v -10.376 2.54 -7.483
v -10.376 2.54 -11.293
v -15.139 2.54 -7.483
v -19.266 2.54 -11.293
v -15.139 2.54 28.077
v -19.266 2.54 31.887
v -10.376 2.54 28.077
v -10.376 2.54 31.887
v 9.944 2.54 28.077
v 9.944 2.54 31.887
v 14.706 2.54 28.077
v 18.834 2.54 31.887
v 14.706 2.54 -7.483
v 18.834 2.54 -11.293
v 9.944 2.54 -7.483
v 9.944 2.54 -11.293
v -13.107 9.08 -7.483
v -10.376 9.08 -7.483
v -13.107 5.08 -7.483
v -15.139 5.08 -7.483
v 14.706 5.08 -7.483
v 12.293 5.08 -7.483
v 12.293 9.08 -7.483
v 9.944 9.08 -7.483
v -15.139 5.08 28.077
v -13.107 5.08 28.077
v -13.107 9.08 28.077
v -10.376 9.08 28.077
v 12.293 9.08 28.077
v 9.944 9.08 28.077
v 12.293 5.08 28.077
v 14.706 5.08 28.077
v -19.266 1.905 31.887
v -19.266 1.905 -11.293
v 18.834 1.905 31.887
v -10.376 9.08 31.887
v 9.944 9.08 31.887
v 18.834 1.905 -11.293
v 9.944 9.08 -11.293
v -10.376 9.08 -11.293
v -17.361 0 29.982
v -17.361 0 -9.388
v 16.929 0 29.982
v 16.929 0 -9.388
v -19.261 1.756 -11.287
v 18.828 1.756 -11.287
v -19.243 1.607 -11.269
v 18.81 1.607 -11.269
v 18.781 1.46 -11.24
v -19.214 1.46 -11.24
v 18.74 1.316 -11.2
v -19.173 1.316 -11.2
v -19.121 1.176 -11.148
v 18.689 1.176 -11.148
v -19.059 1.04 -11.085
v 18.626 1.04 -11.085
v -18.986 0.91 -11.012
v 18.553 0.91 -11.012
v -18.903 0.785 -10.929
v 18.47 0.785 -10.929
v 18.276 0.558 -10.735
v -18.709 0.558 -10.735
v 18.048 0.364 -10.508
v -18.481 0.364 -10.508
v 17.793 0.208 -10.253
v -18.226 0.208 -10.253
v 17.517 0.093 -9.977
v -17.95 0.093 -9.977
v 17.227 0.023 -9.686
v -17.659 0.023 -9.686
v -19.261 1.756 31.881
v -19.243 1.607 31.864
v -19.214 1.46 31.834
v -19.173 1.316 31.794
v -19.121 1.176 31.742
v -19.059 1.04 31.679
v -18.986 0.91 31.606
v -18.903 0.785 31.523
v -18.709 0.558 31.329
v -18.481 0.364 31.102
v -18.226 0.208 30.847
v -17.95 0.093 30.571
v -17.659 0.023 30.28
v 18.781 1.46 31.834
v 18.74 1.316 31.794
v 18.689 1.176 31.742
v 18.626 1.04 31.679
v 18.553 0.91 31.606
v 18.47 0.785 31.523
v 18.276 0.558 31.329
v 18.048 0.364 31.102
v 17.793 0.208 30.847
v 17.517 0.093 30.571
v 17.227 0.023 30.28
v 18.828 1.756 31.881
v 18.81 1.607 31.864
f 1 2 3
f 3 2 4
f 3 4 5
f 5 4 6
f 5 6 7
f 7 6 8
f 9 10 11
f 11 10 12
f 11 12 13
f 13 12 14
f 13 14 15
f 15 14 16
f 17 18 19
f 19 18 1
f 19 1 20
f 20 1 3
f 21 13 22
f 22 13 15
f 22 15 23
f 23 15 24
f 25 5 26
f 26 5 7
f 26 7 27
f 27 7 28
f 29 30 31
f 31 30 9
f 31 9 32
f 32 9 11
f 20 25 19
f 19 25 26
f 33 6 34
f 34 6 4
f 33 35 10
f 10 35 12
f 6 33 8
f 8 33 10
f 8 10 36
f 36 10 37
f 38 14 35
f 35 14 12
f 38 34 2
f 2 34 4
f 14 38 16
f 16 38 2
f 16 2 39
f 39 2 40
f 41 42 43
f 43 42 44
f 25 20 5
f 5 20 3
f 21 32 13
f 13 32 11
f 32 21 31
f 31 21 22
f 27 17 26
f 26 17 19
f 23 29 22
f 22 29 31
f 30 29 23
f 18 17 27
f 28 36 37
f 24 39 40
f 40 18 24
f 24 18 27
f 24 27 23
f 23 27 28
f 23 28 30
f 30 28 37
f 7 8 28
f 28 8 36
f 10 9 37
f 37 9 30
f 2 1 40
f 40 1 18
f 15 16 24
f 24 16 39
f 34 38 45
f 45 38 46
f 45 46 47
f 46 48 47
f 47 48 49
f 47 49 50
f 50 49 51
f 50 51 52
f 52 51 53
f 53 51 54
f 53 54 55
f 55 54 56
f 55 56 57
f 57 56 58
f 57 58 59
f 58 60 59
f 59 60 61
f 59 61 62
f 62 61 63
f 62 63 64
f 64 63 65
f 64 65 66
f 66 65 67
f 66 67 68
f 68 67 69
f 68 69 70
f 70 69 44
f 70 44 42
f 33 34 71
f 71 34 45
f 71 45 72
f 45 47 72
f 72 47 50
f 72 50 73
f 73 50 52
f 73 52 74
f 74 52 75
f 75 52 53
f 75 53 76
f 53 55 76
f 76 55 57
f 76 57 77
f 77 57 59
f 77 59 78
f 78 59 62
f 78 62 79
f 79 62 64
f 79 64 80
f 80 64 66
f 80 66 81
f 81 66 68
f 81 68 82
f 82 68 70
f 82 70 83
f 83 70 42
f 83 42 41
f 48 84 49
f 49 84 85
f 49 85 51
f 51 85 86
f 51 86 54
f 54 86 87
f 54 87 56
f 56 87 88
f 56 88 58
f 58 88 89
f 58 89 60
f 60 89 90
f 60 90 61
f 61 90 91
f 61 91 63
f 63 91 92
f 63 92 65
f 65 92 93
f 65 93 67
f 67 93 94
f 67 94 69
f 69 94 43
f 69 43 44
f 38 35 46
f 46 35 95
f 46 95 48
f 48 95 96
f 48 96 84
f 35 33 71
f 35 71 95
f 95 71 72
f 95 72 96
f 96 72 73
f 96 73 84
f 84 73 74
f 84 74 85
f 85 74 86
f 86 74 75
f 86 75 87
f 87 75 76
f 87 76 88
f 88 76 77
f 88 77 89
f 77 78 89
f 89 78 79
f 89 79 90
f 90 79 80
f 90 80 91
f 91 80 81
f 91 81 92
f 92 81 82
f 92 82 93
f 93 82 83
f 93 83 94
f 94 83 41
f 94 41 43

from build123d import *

# Parameters (mm, degrees)
SKETCH1_W           = 38.1
SKETCH1_H           = 43.18
BOSS_EXTRUDE1_DEPTH = 2.54
SKETCH2_W           = 29.845
SKETCH2_H           = 35.56
BOSS_EXTRUDE2_DEPTH = 2.54
SKETCH3_W           = 25.4
SKETCH3_H           = 35.56
BOSS_EXTRUDE3_DEPTH = 4
SKETCH7_W           = 20.32
SKETCH7_H           = 3.81
BOSS_EXTRUDE5_DEPTH = 6.54
FILLET1_R           = 1.905


with BuildPart() as part:
    # Sketch1 → Boss-Extrude1 (new body)
    with BuildSketch(Plane(origin=(0, 0, 0), x_dir=(1, 0, 0), z_dir=(0, 1, 0))):
        with Locations((-0.216477273, -10.297102273)):
            Rectangle(SKETCH1_W, SKETCH1_H)
    extrude(amount=BOSS_EXTRUDE1_DEPTH)

    # Sketch2 → Boss-Extrude2 (add)
    with BuildSketch(Plane(origin=(0, 2.54, 0), x_dir=(1, 0, 0), z_dir=(0, 1, 0))):
        with Locations((-0.216477273, -10.297102273)):
            Rectangle(SKETCH2_W, SKETCH2_H)
    extrude(amount=BOSS_EXTRUDE2_DEPTH)

    # Sketch3 → Boss-Extrude3 (add)
    with BuildSketch(Plane(origin=(0, 5.08, 0), x_dir=(1, 0, 0), z_dir=(0, 1, 0))):
        with Locations((-0.406977273, -10.297102273)):
            Rectangle(SKETCH3_W, SKETCH3_H)
    extrude(amount=BOSS_EXTRUDE3_DEPTH)

    # Sketch7 → Boss-Extrude5 (add)
    with BuildSketch(Plane(origin=(0, 2.54, 0), x_dir=(1, 0, 0), z_dir=(0, 1, 0))):
        with Locations((-0.216477273, -29.982102273)):
            Rectangle(SKETCH7_W, SKETCH7_H)
        with Locations((-0.216477273, 9.387897727)):
            Rectangle(SKETCH7_W, SKETCH7_H)
    extrude(amount=BOSS_EXTRUDE5_DEPTH)

    # Fillet1
    fillet1_edges = [part.edges().sort_by_distance(p)[0] for p in [
        (-0.216477273, 0, -11.292897727),
        (18.833522727, 0, 10.297102273),
        (-0.216477273, 0, 31.887102273),
        (-19.266477273, 0, 10.297102273),
    ]]
    fillet(fillet1_edges, radius=FILLET1_R)


solid = part.part
